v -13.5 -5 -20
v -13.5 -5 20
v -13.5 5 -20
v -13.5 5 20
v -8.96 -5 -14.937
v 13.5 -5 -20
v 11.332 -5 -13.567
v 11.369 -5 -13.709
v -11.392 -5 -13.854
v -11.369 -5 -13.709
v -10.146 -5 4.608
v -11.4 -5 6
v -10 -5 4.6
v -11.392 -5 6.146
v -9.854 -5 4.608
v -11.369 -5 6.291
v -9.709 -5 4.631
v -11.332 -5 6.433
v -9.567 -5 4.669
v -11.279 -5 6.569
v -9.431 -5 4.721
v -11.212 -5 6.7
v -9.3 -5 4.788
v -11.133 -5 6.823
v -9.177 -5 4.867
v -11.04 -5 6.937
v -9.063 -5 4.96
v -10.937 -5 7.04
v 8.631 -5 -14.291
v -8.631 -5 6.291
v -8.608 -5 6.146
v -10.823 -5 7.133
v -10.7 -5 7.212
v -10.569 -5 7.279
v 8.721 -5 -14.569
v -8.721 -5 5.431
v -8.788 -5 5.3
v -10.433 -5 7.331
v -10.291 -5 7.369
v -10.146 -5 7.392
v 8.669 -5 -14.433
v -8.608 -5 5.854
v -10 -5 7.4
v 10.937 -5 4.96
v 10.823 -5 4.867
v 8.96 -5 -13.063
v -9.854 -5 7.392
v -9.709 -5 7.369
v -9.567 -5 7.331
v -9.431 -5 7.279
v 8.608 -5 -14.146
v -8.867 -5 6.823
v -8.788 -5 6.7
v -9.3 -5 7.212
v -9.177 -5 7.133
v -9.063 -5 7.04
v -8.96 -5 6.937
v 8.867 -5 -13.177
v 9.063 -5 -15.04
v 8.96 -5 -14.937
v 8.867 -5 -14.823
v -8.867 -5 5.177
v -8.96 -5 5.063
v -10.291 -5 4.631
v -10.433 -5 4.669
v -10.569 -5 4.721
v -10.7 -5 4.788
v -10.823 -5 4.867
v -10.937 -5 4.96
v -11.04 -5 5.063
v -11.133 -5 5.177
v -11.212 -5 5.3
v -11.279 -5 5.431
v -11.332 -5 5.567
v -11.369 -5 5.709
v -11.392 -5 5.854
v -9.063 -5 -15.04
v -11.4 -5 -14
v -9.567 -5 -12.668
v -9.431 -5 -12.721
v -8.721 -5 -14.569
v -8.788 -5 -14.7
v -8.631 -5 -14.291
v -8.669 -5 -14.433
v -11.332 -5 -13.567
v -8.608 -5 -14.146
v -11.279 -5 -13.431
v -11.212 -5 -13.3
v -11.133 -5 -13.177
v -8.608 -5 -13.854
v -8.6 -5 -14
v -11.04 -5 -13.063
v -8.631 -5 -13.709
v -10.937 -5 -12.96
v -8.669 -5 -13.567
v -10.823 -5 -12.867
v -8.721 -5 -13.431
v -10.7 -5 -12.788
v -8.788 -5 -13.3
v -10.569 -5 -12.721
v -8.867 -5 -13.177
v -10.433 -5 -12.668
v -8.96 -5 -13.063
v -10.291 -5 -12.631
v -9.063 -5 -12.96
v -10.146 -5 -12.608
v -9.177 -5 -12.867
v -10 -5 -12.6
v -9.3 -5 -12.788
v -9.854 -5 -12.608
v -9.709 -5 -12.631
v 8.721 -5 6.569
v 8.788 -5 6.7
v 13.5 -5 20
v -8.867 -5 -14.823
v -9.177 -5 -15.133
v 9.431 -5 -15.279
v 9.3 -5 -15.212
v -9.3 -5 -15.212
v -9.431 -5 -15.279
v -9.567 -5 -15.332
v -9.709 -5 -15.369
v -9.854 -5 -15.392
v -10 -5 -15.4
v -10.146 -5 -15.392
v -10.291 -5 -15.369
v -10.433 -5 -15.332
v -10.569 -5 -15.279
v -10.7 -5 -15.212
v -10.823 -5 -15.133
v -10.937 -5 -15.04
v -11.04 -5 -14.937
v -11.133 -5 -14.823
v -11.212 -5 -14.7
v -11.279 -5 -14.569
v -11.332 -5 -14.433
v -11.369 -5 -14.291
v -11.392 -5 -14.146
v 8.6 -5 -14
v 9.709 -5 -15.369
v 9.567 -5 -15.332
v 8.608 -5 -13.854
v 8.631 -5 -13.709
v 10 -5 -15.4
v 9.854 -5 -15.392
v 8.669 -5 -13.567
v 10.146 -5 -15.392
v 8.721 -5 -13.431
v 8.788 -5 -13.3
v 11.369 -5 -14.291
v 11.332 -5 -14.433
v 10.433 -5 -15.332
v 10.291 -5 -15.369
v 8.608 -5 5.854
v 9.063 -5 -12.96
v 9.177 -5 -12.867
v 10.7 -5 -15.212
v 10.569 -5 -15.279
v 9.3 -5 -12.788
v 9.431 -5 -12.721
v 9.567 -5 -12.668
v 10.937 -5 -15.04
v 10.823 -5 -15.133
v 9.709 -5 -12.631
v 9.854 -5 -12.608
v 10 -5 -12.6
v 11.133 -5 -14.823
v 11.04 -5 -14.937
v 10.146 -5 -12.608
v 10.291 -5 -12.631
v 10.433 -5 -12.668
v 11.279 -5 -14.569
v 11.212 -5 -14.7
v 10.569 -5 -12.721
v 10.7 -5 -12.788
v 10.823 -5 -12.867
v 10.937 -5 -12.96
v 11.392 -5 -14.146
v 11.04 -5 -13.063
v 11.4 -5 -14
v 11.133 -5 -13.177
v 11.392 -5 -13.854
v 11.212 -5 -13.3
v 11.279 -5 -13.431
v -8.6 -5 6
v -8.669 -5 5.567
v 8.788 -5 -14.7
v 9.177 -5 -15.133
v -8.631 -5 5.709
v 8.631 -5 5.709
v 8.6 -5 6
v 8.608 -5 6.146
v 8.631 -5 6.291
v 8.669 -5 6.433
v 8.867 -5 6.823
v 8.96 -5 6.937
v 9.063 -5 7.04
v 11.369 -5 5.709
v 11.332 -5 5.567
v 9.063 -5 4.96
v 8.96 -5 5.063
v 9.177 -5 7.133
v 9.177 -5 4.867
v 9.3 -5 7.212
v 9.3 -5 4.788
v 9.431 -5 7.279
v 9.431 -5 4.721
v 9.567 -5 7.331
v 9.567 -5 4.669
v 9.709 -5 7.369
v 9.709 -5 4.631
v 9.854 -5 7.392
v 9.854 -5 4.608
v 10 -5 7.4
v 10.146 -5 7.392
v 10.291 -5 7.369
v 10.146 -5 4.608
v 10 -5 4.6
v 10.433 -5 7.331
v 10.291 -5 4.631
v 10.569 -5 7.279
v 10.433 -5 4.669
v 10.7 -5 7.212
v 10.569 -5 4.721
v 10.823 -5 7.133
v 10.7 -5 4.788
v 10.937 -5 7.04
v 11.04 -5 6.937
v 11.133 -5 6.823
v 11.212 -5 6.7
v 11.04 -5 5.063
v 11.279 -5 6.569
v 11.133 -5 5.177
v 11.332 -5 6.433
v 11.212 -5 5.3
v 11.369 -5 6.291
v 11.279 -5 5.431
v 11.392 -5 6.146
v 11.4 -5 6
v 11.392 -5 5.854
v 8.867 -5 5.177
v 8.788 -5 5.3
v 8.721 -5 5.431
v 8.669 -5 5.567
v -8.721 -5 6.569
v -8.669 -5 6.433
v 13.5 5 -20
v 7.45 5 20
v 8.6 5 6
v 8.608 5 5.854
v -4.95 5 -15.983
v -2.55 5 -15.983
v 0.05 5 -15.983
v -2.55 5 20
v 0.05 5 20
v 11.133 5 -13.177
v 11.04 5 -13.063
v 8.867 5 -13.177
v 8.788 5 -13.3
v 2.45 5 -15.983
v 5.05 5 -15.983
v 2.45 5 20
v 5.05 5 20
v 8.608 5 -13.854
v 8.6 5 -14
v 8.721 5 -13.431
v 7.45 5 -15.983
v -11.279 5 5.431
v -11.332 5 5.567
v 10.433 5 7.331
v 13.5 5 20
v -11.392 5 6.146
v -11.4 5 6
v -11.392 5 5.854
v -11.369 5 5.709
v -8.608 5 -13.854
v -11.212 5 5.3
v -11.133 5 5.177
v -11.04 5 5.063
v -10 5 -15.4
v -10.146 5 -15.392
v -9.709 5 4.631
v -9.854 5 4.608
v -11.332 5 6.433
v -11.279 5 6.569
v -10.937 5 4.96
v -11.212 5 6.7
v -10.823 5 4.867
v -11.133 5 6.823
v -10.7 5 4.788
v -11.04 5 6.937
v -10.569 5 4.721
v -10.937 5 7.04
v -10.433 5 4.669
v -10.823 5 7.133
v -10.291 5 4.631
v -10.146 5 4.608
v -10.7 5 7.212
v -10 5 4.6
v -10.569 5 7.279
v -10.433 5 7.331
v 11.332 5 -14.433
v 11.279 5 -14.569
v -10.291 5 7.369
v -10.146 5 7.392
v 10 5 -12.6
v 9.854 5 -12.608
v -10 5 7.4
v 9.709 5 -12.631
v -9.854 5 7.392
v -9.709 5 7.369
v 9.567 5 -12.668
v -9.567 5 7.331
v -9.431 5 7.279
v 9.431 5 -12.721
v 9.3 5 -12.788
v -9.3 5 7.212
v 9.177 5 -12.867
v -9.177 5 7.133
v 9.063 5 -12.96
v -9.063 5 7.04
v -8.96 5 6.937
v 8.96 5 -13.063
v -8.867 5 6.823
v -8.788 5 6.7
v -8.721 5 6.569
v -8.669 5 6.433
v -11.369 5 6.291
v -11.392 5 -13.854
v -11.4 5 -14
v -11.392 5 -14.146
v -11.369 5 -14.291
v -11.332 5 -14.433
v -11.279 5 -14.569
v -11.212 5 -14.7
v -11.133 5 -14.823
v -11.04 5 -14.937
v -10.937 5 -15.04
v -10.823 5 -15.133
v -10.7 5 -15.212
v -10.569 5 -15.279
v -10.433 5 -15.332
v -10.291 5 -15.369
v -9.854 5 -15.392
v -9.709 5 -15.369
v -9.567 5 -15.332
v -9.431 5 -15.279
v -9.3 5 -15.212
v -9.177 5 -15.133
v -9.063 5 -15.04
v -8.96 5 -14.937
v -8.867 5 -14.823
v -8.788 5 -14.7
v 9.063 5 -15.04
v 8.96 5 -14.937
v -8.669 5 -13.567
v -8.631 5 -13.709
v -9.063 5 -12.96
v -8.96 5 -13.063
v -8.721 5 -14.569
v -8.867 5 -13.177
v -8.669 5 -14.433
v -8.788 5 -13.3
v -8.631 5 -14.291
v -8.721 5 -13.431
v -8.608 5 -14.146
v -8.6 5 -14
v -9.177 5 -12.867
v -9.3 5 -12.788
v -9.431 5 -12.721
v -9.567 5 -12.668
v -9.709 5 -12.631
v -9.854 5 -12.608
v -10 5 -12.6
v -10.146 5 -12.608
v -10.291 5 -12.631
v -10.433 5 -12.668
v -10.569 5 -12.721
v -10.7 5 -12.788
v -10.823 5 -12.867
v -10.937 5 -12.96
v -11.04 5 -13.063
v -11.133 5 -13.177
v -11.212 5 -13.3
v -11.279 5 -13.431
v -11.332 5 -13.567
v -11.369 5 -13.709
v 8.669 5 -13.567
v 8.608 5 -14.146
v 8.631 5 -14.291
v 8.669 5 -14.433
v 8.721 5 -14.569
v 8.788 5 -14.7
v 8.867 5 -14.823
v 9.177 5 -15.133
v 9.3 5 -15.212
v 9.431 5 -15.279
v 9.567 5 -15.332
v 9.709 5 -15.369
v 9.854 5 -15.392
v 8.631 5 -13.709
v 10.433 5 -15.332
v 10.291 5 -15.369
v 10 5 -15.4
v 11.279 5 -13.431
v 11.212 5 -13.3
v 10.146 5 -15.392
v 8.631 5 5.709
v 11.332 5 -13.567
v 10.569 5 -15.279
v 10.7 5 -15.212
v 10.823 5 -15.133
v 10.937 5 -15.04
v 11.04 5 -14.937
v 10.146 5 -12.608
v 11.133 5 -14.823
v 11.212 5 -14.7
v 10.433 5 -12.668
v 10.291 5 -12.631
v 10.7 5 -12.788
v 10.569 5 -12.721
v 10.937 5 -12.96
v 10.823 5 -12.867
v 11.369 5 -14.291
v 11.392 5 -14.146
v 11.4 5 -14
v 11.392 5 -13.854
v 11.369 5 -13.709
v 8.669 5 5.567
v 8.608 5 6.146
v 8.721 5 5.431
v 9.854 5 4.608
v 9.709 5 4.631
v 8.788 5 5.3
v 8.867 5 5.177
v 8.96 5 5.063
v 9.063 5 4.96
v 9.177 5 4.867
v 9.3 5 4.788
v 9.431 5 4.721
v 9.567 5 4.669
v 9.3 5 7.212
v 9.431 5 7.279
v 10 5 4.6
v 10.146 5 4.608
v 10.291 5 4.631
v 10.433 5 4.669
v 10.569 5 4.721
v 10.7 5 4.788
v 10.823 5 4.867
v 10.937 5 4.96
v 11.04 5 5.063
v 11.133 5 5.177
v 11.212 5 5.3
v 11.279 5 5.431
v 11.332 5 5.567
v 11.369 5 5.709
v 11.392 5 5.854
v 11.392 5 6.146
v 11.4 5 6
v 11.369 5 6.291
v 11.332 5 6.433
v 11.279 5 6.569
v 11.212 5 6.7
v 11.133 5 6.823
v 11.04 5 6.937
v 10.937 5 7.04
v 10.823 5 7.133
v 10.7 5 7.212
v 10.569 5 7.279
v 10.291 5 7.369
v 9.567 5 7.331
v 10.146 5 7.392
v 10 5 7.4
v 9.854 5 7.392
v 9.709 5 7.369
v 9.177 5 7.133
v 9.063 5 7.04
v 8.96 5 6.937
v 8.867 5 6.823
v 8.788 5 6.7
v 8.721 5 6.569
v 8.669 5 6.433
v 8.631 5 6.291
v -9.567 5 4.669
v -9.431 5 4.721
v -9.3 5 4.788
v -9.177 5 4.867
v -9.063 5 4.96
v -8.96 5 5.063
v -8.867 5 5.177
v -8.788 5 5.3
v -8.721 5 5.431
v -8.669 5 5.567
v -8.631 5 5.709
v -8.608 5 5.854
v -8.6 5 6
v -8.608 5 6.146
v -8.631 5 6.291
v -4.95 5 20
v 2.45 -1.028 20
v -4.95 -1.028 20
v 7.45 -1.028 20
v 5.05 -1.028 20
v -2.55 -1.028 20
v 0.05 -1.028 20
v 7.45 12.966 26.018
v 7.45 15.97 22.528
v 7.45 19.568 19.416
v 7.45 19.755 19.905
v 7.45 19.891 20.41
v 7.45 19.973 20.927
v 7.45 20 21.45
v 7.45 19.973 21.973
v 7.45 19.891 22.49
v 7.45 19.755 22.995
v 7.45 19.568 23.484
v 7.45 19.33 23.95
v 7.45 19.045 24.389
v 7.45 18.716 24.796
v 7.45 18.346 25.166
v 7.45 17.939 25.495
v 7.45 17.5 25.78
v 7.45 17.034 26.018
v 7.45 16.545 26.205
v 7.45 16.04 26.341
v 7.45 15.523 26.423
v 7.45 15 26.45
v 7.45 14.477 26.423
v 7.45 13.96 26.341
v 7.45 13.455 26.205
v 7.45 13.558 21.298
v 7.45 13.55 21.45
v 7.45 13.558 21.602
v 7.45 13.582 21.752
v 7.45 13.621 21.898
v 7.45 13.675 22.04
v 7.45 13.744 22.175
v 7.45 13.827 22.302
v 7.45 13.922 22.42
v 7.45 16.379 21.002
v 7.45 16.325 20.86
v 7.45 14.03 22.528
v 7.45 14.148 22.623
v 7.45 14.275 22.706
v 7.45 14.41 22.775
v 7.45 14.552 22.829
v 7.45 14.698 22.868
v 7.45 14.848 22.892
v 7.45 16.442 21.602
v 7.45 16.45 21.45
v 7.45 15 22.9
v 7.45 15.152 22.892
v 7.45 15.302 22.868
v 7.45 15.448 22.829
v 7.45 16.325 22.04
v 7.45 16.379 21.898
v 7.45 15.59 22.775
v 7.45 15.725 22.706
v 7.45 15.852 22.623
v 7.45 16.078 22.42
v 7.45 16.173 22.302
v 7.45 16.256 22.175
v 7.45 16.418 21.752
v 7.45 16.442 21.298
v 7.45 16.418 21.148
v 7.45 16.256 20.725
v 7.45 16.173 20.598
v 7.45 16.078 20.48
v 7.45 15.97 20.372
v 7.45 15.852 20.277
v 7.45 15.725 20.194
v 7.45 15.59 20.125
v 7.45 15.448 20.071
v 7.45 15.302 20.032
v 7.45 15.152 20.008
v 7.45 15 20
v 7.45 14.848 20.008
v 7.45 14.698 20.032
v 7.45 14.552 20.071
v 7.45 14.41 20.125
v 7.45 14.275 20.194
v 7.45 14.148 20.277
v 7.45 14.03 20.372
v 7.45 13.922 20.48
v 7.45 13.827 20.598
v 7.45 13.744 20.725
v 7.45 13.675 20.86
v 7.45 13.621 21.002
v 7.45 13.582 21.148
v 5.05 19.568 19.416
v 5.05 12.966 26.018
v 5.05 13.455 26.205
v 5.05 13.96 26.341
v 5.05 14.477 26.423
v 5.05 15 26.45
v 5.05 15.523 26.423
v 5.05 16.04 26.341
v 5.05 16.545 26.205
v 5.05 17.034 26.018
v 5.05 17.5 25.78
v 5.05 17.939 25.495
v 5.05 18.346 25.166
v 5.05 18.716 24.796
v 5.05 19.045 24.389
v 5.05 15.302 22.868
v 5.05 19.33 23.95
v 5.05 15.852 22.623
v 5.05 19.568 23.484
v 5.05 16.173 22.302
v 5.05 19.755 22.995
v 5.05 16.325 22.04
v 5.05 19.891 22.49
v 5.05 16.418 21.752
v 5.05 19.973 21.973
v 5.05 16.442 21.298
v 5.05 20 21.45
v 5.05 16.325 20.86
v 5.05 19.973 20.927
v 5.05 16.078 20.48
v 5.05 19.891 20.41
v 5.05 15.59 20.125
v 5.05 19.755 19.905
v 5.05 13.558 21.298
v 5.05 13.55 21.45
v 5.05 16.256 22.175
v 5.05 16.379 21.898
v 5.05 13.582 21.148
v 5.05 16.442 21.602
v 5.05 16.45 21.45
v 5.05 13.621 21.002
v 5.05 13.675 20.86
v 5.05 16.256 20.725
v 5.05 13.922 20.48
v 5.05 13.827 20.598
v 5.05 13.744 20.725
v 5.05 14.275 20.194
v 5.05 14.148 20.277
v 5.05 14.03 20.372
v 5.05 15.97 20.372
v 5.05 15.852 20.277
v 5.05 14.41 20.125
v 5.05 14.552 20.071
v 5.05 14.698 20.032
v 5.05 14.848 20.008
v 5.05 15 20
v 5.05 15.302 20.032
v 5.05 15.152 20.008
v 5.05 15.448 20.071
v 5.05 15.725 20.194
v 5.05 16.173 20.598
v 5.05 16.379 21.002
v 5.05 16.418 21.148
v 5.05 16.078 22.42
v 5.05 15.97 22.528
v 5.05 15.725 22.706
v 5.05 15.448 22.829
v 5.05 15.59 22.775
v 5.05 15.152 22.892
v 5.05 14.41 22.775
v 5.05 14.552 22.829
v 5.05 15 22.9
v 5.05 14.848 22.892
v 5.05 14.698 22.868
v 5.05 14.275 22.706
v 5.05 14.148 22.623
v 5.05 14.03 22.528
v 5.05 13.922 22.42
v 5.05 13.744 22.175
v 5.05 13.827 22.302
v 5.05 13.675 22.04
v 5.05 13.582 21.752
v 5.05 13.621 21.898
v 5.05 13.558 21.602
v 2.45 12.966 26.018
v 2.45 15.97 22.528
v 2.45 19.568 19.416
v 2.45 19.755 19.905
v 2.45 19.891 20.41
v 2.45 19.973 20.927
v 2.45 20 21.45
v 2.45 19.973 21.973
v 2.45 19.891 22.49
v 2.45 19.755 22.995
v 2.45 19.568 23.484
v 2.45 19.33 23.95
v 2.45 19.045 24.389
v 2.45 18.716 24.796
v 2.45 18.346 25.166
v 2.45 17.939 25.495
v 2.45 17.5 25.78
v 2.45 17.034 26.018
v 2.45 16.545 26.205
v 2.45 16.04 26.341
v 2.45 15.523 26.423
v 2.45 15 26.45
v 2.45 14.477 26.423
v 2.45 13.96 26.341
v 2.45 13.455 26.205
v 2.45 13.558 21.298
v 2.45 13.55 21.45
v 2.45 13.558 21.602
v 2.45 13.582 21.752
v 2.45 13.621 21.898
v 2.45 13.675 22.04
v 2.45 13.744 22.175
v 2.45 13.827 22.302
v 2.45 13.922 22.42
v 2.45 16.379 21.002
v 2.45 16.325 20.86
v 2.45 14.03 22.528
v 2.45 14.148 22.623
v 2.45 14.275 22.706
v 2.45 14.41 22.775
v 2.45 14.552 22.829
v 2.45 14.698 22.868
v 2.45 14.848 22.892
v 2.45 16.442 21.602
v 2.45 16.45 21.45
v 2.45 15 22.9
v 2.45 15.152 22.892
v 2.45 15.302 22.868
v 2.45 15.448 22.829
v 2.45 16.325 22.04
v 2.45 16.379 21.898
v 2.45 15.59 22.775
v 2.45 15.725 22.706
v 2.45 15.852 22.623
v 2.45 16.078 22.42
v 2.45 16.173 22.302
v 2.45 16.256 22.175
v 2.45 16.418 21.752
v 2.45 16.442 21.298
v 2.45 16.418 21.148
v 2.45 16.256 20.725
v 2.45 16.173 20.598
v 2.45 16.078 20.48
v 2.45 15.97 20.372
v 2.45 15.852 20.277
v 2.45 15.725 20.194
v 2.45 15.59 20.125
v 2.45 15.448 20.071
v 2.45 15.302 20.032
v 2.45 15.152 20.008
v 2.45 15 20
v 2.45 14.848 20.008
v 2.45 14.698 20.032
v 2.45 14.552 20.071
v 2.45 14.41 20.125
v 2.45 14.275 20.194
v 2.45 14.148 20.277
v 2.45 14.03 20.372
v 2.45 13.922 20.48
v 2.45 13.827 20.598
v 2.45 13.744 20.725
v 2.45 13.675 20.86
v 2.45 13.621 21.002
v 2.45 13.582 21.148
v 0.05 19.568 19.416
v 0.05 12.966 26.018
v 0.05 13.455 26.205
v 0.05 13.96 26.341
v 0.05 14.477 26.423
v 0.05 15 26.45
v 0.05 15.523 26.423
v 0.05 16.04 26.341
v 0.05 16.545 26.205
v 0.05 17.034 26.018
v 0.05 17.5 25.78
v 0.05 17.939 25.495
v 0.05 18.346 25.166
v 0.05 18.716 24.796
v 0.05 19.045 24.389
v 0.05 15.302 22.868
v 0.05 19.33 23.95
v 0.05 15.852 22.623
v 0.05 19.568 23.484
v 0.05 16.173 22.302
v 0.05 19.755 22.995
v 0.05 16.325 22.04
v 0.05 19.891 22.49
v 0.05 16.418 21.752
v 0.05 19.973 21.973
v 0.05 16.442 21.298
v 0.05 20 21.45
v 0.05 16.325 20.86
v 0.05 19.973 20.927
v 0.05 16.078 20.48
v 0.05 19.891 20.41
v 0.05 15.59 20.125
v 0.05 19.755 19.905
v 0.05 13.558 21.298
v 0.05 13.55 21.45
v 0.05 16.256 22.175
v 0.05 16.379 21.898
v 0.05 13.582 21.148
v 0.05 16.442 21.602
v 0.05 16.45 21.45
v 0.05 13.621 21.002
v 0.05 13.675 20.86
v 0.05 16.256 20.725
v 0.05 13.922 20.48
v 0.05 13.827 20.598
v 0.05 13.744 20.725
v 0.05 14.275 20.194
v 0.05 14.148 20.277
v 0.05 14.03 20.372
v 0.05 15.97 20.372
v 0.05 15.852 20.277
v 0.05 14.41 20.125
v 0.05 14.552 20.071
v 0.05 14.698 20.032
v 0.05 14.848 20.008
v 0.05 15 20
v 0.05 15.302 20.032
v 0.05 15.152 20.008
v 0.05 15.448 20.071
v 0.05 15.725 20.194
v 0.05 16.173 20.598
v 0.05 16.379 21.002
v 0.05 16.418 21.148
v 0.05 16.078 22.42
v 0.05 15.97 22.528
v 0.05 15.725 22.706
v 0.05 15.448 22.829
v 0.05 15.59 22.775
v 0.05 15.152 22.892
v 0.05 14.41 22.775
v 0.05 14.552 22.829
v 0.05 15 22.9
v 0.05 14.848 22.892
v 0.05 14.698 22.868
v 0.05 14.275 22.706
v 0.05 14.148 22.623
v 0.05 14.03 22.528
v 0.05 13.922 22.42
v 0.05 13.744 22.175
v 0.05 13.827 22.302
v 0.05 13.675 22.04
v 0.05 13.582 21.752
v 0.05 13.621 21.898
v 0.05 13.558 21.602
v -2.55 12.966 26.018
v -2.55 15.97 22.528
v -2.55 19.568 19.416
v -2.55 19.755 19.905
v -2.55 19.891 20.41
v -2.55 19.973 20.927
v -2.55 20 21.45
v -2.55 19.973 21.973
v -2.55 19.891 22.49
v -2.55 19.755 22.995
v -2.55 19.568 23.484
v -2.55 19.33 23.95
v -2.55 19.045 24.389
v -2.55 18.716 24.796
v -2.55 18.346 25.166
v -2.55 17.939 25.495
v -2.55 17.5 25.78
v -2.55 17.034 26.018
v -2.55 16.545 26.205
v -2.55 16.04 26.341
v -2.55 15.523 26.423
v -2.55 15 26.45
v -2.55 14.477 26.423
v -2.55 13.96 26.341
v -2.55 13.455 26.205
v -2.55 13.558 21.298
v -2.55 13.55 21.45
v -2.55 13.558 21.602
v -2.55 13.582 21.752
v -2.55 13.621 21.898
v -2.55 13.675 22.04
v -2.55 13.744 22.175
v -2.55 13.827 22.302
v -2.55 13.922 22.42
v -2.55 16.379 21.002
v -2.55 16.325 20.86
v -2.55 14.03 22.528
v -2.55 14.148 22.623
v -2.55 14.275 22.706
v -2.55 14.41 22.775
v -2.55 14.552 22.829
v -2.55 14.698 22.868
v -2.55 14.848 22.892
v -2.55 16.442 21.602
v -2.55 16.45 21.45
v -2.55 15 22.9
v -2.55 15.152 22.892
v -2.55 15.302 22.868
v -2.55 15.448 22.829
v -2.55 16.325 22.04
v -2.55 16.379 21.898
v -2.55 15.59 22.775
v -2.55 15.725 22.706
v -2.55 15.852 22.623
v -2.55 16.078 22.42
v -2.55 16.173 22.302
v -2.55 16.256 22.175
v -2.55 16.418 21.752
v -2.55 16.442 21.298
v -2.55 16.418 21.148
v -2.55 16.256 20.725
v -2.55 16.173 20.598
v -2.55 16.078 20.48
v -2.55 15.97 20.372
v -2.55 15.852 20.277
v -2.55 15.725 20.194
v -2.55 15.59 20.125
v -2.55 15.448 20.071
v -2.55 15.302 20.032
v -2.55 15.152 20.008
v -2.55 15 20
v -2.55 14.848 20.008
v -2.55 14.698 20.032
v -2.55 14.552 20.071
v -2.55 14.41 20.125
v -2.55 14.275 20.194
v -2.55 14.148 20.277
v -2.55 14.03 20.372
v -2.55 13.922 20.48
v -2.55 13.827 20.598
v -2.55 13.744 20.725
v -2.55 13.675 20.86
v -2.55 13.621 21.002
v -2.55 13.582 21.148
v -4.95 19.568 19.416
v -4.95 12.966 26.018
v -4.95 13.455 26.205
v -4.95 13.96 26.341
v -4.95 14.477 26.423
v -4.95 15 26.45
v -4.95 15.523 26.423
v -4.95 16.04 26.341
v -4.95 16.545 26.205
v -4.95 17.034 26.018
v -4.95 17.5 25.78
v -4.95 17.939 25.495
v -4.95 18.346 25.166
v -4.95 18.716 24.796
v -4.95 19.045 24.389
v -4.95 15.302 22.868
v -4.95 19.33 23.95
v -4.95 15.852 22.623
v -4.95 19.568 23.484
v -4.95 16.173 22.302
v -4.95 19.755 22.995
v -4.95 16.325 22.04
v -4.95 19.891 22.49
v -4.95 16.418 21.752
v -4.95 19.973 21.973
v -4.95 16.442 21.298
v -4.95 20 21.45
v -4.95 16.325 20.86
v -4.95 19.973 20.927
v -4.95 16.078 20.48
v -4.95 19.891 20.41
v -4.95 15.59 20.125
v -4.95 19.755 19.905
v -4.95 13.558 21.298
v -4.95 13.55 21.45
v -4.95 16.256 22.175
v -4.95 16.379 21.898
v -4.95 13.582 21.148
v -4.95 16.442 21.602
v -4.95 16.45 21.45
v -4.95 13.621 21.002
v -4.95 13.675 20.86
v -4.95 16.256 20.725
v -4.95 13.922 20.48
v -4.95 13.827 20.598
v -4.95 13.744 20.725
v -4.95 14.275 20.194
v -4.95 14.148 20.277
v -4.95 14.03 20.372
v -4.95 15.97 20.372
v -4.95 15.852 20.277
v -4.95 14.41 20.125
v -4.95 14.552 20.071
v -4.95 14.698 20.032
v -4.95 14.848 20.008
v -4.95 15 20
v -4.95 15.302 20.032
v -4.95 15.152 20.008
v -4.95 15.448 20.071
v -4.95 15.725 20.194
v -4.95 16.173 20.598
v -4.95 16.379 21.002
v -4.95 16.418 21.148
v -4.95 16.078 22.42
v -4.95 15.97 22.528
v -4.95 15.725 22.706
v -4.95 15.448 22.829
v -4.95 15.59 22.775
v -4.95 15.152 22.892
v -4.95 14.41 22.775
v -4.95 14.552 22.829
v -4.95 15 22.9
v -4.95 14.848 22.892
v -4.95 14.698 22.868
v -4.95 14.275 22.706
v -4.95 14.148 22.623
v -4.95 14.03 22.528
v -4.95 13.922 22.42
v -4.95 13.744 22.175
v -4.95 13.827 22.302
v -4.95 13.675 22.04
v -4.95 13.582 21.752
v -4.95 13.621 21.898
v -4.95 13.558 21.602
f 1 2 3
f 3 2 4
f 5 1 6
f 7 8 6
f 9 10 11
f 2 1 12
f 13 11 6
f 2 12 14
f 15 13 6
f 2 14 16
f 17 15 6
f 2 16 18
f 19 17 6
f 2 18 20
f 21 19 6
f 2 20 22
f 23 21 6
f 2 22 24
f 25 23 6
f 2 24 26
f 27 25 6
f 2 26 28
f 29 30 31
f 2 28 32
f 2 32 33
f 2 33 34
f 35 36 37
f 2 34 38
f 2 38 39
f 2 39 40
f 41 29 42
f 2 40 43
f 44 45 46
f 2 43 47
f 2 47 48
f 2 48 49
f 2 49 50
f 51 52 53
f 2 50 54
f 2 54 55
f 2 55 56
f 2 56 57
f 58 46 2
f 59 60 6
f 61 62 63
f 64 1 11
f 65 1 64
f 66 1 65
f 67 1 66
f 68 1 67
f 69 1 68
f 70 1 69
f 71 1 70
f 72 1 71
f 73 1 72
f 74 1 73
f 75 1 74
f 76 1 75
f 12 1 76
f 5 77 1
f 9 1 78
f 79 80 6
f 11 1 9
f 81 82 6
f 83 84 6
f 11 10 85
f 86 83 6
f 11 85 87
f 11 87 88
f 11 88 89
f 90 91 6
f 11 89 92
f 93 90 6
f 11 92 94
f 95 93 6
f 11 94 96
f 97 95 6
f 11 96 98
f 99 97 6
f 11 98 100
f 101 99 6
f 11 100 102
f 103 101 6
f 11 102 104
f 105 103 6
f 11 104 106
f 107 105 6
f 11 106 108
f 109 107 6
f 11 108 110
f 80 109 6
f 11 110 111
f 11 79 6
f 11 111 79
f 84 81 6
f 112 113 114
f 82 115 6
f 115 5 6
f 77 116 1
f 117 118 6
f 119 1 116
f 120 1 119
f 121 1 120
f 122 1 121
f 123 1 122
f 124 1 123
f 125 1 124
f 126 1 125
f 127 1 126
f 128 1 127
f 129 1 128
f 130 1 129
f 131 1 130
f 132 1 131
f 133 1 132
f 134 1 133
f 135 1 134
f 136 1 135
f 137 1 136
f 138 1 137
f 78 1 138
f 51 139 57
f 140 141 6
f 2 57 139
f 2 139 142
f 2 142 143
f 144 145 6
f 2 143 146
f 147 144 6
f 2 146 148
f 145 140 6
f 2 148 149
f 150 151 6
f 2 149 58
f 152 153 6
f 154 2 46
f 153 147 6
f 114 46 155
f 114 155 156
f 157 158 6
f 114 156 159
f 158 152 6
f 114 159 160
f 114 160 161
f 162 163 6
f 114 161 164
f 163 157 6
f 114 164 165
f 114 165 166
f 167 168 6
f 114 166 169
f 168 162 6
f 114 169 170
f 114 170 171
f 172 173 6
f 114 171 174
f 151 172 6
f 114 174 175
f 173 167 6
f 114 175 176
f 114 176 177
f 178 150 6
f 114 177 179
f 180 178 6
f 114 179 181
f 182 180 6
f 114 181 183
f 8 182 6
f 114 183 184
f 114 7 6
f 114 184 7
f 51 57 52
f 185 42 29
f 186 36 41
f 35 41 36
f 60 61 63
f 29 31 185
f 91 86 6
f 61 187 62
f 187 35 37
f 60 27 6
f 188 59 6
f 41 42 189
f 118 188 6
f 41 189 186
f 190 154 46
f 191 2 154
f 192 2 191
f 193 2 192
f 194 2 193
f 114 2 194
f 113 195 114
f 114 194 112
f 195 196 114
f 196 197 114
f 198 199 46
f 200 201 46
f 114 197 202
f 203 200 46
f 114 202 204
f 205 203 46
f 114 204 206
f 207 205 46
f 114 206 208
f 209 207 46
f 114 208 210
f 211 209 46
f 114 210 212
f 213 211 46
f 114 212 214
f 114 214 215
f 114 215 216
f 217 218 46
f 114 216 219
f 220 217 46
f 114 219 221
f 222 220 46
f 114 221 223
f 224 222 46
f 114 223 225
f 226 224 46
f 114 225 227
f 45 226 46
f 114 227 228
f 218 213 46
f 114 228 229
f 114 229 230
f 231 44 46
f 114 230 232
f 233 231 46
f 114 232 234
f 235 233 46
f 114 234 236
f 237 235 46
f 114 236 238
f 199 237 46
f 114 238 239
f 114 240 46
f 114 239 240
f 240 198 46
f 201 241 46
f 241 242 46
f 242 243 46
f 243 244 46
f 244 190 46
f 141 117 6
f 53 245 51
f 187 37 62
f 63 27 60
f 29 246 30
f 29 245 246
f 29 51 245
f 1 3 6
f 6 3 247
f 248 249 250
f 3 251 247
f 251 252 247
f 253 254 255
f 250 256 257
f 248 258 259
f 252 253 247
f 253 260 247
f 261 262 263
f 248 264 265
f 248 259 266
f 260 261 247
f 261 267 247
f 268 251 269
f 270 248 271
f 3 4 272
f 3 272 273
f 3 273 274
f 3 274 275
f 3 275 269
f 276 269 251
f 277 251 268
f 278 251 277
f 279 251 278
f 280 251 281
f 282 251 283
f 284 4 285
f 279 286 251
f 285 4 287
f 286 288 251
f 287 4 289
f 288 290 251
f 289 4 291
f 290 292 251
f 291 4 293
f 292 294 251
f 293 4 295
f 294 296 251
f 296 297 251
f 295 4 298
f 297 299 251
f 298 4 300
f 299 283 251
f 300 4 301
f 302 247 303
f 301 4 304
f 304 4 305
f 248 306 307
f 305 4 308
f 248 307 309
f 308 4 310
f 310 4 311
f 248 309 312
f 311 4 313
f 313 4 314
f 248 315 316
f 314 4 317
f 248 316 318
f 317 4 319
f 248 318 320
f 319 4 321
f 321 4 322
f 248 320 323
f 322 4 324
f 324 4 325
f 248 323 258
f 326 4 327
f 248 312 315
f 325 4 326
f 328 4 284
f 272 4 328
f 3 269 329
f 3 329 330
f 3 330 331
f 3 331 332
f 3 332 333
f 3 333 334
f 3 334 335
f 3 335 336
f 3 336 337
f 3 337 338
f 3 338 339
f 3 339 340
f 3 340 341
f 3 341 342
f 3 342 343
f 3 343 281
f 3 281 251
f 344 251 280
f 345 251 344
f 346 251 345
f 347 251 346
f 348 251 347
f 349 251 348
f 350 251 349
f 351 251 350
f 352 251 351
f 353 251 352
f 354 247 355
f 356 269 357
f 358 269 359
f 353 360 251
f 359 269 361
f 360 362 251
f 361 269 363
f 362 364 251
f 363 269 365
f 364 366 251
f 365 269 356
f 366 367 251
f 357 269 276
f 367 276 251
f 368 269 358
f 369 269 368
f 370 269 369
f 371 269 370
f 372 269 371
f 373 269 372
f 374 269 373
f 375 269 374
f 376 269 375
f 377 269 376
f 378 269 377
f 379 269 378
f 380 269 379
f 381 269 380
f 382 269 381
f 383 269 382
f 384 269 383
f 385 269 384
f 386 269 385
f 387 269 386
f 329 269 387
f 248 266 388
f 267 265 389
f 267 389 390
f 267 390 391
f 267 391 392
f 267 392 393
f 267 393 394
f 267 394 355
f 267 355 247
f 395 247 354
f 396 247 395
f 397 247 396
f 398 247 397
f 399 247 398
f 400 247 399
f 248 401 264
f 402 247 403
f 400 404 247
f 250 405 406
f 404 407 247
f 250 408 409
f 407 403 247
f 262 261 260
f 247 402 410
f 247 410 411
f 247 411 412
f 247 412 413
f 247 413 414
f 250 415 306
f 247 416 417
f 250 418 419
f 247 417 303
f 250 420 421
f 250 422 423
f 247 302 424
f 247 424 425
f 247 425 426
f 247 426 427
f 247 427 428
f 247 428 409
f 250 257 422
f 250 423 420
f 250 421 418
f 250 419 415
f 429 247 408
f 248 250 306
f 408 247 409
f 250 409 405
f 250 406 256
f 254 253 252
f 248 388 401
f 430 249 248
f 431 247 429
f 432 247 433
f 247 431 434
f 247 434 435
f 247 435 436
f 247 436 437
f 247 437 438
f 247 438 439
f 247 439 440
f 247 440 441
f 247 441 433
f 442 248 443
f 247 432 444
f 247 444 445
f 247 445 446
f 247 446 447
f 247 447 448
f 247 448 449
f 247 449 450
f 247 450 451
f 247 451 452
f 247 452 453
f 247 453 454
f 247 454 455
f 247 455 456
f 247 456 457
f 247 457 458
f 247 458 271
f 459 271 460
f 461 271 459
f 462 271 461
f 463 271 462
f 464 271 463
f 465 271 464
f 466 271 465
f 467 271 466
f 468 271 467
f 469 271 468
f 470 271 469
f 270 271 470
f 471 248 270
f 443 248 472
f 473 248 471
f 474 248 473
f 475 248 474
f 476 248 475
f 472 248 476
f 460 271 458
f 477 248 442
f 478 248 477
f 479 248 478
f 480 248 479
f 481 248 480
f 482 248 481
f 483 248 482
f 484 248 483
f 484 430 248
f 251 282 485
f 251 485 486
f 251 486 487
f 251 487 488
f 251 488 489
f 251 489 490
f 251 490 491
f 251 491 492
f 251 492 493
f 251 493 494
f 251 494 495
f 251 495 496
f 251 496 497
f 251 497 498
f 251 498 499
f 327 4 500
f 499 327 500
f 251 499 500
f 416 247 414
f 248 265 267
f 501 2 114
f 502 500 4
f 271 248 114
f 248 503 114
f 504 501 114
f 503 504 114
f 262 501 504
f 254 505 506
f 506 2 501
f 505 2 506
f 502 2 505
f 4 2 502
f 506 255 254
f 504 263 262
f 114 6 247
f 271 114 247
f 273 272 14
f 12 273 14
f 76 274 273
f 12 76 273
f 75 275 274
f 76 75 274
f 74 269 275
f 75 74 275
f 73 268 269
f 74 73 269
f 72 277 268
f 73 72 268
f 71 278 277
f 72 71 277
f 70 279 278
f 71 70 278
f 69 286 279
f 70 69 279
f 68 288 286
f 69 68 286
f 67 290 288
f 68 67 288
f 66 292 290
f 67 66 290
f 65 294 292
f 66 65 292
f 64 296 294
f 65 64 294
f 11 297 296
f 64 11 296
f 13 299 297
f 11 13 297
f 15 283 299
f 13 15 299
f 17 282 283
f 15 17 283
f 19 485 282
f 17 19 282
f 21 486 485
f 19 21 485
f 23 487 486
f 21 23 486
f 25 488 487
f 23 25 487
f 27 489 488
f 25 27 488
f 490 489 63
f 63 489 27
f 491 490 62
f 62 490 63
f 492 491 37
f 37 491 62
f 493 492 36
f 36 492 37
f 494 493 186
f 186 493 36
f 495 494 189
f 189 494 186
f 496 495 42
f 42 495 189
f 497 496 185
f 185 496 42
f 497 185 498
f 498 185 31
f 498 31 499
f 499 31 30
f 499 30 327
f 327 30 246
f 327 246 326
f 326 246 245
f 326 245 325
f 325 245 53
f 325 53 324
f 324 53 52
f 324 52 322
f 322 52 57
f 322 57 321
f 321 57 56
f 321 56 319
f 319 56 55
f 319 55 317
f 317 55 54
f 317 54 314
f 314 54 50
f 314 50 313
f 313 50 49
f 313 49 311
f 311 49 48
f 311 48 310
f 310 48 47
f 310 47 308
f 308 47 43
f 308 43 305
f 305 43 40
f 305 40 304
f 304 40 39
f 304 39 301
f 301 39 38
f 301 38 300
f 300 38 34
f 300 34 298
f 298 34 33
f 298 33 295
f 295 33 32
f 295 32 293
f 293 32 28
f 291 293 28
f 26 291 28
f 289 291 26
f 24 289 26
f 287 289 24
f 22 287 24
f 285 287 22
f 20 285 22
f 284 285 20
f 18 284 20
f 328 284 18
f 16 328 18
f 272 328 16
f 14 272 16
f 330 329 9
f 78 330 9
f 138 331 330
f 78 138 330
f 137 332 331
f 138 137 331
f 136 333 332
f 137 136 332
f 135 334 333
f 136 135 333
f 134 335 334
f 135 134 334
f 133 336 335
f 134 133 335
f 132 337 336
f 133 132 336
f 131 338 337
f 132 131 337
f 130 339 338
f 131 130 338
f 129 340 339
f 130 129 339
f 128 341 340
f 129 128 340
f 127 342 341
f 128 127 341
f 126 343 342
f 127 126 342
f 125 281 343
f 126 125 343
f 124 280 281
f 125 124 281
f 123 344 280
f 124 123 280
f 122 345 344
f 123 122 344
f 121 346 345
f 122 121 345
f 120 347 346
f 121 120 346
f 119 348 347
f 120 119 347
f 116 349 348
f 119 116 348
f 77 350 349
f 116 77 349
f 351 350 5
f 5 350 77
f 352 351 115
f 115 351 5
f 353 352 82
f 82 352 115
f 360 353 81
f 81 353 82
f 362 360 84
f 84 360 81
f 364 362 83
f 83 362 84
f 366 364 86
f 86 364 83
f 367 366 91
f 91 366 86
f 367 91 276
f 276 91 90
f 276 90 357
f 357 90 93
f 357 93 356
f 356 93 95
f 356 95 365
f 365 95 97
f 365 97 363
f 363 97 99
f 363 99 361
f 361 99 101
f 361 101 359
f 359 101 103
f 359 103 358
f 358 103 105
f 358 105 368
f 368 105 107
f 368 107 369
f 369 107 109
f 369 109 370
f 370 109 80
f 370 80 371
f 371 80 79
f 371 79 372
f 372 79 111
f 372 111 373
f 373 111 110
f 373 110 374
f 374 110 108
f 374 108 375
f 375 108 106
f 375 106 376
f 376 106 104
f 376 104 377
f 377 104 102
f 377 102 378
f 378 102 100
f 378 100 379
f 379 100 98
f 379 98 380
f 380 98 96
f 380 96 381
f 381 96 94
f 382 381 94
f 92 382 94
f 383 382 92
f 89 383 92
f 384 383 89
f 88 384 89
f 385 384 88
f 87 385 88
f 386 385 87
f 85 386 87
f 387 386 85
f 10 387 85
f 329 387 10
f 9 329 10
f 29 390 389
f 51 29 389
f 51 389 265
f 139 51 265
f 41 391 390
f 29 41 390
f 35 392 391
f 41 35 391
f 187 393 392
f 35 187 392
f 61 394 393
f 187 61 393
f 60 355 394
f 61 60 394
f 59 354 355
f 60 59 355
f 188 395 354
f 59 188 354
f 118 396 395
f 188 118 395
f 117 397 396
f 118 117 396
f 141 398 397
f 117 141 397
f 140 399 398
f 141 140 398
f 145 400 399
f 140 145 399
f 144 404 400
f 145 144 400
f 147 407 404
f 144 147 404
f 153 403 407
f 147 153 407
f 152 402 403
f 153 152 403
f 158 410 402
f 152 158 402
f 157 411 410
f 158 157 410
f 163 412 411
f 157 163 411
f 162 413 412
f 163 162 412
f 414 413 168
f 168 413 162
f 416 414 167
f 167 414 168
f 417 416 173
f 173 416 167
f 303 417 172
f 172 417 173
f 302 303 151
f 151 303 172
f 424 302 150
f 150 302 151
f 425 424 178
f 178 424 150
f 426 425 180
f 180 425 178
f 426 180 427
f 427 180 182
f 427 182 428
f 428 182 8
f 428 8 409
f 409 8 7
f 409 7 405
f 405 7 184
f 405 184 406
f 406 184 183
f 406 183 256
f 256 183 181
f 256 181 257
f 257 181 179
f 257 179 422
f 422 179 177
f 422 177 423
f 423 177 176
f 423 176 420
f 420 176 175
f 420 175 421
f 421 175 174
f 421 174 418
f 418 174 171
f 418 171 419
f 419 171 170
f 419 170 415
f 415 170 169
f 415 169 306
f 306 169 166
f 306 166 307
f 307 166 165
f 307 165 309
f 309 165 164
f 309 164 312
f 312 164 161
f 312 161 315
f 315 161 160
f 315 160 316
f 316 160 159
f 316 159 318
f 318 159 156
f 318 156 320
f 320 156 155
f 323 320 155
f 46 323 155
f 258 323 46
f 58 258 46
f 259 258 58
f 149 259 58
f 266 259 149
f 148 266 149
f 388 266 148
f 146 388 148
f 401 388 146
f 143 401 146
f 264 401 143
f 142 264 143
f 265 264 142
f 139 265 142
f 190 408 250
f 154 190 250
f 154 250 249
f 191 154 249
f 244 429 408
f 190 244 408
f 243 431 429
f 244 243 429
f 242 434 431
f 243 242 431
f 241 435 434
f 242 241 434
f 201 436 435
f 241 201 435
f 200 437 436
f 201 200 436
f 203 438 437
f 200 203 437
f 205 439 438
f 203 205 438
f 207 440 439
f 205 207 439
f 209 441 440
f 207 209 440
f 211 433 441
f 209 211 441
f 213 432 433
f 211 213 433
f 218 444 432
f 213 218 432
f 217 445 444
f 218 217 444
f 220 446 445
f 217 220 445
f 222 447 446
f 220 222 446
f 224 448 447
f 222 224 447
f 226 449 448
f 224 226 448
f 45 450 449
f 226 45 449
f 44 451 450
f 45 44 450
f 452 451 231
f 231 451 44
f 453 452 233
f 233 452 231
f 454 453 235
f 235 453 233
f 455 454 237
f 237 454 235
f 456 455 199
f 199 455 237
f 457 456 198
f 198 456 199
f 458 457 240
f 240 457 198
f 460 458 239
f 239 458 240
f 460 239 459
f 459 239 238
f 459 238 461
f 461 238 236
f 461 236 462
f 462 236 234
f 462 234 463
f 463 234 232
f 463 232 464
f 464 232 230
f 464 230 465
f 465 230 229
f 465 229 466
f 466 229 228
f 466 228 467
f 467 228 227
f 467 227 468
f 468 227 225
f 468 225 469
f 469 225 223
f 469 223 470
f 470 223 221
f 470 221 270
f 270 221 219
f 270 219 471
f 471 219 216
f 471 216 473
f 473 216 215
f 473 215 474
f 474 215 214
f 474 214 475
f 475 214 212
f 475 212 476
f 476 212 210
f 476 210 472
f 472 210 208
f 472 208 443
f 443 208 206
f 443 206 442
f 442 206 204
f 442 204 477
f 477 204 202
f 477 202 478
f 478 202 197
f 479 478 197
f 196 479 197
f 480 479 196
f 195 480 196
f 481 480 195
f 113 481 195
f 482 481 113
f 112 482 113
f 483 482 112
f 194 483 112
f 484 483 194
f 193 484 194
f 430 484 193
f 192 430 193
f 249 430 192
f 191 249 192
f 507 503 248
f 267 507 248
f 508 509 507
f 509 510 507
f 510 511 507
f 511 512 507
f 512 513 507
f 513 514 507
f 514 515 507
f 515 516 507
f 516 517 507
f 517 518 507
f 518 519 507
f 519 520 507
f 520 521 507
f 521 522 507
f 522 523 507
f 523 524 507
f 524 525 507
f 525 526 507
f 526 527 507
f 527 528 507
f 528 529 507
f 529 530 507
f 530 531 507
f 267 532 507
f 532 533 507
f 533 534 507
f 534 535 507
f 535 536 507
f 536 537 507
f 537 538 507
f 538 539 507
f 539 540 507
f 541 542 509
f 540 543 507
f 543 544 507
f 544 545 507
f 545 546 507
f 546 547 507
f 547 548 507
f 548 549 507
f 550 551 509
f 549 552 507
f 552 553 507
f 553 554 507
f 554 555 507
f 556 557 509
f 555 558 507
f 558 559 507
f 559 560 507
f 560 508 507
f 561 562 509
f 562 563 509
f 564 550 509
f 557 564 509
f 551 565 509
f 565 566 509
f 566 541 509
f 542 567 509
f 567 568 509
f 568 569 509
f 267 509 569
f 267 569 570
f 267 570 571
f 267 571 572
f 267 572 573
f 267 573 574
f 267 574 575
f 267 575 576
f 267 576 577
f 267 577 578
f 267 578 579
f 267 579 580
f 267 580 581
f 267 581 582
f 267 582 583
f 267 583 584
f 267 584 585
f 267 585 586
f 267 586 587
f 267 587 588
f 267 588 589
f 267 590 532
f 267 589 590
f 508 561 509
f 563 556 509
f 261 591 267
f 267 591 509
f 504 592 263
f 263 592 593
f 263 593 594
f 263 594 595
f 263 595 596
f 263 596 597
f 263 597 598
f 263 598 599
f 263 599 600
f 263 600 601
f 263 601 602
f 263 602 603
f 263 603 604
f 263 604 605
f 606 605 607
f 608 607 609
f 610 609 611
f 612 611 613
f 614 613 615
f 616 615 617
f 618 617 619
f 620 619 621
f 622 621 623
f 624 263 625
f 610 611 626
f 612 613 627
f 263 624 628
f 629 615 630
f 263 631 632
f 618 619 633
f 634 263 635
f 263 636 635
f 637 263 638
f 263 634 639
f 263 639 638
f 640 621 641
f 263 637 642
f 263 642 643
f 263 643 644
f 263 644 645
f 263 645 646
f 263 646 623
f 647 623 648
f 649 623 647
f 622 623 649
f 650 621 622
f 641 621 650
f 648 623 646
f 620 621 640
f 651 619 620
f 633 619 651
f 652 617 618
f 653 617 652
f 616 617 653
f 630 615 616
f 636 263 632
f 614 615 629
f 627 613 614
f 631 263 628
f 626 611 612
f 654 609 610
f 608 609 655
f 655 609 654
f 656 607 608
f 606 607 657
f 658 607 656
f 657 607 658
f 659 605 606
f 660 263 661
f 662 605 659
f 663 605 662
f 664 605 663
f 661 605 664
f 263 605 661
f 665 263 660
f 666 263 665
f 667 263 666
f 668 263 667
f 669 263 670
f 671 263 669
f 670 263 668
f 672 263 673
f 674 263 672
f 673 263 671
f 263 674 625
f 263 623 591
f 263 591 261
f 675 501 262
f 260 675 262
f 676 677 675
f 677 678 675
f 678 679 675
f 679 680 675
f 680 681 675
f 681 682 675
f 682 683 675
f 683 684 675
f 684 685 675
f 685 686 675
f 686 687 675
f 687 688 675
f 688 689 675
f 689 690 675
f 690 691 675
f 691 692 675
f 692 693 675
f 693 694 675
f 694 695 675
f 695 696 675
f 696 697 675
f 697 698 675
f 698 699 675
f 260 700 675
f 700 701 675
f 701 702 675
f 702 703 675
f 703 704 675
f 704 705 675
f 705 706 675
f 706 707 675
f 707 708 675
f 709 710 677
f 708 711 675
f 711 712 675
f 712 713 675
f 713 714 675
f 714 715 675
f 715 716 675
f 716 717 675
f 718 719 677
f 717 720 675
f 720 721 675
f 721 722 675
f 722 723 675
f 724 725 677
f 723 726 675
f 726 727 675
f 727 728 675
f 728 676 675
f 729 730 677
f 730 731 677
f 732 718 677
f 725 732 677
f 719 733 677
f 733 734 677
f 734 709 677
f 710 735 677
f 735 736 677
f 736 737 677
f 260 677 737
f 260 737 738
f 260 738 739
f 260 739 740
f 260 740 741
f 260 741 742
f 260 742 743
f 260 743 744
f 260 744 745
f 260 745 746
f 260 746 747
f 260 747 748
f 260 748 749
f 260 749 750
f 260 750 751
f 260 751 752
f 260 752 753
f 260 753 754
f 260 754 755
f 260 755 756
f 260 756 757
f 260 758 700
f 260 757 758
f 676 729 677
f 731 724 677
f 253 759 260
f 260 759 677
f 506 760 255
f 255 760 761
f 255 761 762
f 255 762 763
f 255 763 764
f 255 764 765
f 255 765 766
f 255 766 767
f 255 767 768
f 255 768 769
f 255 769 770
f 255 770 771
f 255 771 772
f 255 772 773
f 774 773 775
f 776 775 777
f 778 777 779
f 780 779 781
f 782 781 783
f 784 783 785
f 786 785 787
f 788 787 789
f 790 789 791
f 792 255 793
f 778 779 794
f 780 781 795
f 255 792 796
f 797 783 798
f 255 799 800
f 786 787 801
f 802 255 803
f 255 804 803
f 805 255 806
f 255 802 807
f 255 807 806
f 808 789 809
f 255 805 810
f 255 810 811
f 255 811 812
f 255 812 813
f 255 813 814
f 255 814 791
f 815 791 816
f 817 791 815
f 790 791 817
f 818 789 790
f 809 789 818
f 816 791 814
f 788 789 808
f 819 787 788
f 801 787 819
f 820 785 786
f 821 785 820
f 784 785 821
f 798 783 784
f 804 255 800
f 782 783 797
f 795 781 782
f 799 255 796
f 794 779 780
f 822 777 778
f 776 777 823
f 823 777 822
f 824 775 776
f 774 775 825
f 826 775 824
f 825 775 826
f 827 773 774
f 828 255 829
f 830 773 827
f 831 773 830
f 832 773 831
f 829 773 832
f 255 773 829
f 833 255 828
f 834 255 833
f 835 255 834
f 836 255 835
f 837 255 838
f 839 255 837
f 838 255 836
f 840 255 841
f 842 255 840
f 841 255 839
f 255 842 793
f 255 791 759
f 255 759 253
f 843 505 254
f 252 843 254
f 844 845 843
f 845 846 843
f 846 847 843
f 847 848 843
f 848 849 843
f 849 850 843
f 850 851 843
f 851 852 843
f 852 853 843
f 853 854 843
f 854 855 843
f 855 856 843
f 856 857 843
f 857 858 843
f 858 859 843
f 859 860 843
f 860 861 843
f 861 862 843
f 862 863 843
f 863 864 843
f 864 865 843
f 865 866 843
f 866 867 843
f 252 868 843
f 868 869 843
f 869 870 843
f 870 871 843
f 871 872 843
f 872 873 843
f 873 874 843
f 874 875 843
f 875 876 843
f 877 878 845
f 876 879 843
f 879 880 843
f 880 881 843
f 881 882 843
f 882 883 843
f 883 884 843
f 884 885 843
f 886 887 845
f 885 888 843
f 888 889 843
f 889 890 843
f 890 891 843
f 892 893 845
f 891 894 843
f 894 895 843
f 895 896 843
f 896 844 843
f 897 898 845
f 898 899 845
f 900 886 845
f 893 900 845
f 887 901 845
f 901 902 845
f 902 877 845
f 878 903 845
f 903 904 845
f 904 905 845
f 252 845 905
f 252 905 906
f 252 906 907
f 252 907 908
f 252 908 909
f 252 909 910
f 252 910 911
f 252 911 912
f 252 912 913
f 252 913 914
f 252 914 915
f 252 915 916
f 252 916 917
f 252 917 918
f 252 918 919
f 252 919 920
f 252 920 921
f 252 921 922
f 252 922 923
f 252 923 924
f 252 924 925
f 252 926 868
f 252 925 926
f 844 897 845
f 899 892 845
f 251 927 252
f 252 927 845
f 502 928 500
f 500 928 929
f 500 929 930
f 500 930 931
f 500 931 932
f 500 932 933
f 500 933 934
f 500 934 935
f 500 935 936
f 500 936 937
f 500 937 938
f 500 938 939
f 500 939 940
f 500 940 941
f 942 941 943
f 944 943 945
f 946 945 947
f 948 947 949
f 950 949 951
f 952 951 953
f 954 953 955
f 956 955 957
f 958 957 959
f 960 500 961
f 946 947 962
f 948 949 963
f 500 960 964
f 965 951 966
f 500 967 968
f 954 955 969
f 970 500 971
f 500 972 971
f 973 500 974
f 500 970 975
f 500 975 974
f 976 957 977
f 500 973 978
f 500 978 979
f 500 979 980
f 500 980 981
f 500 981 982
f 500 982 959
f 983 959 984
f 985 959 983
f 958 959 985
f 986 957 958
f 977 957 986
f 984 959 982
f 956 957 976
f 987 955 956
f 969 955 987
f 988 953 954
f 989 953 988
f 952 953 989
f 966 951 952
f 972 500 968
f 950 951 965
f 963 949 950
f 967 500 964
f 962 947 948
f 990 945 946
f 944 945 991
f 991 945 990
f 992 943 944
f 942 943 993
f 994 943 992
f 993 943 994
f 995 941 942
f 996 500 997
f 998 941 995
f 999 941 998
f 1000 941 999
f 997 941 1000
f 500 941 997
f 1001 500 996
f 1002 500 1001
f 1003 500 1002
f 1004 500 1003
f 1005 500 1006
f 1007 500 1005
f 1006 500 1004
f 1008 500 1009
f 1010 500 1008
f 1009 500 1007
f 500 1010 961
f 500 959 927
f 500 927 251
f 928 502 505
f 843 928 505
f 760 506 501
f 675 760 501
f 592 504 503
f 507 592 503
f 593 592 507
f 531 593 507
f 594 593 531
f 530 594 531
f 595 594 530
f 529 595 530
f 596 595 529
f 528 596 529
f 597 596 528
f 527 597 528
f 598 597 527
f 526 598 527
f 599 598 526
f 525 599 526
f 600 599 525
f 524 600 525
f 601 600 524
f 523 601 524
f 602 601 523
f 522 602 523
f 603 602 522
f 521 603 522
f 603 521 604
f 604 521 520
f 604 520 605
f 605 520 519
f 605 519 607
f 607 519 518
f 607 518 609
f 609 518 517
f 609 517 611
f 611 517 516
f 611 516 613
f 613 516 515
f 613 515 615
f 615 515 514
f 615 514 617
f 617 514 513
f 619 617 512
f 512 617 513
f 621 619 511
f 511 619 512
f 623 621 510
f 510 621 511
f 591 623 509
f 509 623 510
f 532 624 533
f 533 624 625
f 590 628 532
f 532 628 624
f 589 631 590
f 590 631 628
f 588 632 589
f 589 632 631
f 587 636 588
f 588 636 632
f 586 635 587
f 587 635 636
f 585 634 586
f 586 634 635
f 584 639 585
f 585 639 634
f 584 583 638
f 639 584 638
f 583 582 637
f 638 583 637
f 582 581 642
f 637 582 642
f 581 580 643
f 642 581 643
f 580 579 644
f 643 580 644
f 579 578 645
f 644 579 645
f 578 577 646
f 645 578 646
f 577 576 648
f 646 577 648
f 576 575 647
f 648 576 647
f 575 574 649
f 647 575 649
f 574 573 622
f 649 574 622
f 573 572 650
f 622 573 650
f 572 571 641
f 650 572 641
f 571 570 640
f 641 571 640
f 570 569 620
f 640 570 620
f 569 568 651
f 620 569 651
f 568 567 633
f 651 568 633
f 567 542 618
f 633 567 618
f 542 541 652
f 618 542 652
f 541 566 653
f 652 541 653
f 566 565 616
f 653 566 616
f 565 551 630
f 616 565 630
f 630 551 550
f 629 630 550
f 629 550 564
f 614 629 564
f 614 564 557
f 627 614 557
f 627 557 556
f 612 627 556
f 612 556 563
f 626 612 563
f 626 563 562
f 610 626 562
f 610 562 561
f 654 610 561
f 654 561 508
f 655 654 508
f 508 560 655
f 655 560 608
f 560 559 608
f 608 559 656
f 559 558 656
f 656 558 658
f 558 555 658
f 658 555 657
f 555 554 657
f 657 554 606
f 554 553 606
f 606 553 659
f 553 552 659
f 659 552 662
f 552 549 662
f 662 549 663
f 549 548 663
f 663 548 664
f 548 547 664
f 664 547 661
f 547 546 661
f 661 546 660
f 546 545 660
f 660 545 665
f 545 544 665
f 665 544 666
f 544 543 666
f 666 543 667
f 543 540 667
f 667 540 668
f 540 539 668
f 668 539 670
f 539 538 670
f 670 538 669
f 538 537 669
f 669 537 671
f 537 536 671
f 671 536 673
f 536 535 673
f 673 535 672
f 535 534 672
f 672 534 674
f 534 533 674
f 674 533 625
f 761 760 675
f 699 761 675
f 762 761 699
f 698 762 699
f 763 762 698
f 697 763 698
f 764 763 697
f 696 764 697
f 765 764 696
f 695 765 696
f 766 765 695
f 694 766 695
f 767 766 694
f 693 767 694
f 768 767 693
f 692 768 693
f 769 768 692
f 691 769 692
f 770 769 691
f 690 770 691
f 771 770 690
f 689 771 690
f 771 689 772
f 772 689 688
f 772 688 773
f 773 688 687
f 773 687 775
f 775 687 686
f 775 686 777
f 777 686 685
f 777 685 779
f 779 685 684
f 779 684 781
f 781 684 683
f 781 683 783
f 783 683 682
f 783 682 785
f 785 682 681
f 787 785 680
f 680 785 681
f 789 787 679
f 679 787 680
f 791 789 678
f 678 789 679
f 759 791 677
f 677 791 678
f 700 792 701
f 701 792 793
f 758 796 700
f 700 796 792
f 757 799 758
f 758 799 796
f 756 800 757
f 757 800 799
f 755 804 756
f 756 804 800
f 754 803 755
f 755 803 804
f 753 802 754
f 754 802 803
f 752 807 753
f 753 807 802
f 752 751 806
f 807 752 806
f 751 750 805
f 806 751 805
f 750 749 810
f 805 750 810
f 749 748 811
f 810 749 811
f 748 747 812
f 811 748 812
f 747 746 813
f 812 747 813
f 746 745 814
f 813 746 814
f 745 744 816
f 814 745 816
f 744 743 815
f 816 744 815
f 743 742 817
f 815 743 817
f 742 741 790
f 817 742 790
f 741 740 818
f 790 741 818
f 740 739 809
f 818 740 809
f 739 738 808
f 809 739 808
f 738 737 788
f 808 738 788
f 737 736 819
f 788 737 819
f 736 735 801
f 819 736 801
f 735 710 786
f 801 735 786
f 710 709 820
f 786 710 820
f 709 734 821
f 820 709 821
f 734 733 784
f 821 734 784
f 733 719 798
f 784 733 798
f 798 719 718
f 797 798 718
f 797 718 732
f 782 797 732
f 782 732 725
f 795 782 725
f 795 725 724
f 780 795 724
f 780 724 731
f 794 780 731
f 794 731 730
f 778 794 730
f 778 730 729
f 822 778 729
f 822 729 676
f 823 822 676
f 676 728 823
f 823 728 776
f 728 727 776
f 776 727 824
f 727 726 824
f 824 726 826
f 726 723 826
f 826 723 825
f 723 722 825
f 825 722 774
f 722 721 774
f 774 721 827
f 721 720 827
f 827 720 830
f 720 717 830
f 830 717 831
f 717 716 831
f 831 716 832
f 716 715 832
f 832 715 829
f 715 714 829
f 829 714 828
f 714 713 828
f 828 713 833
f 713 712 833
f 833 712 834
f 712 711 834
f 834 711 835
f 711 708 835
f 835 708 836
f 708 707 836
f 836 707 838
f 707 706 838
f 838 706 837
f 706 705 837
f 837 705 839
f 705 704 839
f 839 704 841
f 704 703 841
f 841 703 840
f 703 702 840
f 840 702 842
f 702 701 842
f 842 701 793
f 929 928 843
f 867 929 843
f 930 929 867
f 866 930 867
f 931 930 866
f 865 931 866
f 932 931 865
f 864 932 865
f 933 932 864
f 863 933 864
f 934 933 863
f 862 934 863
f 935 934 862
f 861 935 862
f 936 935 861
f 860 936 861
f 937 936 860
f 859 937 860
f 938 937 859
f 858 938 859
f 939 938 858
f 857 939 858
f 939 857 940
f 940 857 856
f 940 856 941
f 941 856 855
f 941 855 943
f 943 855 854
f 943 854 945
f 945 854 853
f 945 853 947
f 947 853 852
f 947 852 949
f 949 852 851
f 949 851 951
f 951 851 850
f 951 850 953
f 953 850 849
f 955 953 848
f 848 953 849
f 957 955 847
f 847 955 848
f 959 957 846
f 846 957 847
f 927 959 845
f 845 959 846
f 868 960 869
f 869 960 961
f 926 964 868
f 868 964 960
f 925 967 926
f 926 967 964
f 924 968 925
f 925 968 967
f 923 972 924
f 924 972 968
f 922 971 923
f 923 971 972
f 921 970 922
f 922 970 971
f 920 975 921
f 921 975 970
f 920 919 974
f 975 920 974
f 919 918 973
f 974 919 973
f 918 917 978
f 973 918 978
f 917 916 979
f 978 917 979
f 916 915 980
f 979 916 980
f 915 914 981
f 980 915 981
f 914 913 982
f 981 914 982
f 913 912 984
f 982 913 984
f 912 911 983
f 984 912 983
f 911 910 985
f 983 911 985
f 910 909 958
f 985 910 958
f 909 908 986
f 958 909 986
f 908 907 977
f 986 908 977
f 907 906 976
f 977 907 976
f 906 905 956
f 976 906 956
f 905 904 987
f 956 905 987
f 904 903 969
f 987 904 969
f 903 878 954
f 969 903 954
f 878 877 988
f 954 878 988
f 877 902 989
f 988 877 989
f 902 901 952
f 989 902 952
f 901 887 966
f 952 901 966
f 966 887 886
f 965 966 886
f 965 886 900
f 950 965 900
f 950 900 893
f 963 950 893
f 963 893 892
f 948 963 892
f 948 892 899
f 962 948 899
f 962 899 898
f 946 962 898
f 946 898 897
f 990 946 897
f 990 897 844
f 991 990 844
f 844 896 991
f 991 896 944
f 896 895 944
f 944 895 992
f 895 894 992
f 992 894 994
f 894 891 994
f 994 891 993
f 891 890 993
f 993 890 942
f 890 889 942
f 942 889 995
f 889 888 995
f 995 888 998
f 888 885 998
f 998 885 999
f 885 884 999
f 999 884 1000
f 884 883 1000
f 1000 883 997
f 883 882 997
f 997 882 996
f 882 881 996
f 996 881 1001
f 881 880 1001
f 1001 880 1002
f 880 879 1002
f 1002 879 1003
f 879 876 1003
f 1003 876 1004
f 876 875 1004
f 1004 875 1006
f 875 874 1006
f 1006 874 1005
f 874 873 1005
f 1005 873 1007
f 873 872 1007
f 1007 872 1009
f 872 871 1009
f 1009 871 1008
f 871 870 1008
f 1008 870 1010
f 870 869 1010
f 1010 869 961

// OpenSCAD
m3_nut_od = 6.2;
m3_nut_radius = m3_nut_od/2;
m3_major = 2.8;
m3_radius = m3_major/2 ;
m3_wide_radius = m3_major/2;

num40_drill = 2.4/2;    // for tapping

slide_h = 40;
slide_l = 15+13+5;//29; //15+13+5
slide_w = 27;

psaver_w = 9;
psaver_l = 13;
psaver_o = 1;

front_h = 13; // want to match the height of a linear rail MGN12C

extrusion_w =15.1;
extrusion_slot_w = 3.4;
extrusion_offset = front_h -((slide_l-extrusion_w)/2);
echo (extrusion_offset);
echo (extrusion_offset+slide_l/2);

screw_offset = 15;

$fn=60;








difference()
{
	union()
	{
	MountingBlock();
translate([1.25,0,]) JointFinger(2.5 - .1);
	%translate([-1.25,0,]) JointFinger(2.5 - .1);
	translate([-3.75,0,]) JointFinger(2.5 - .1);
	%translate([3.75,0,]) JointFinger(2.5 - .1);
	translate([6.25,0,]) JointFinger(2.5 - .1);
	%translate([-6.25,0,]) JointFinger(2.5 - .1);
	}

	// pin hole
	translate([0,15,15 +5 + (2.9 /2)]) rotate([90,0,90]) cylinder(d=2.9, h=slide_w, center=true);

}






module JointFinger(thickness = 3)
{
	hull()
	{
// this first one sets the pivot
		translate([0,15,15 + 5 + (2.9 /2)]) rotate([90,0,90]) cylinder(r=5, h=thickness, center=true);
		translate([0,0,15])rotate([90,0,90]) cylinder(r=5, h=thickness, center=true);
		translate([0,0,-15])rotate([90,0,90]) cylinder(r=5, h=thickness, center=true);
	}
}

module MountingBlock()
{
	difference()
	{
	     cube([slide_w, 10 ,slide_h],center=true);
	
	// bolt hole pattern
	 	 translate([0,-2,-4]) rotate([-90,0,0])
		    for (a = [0: 1]) {
		     rotate([0,0,a*180])
				union(){
		          translate([10, 10, (slide_h-16)/2])  cylinder(r=m3_wide_radius, h=160, center=true);
		          translate([10, -10, (slide_h-16)/2])  cylinder(r=m3_wide_radius, h=160, center=true);
		         
					 
		        }
		    }
	}
}
